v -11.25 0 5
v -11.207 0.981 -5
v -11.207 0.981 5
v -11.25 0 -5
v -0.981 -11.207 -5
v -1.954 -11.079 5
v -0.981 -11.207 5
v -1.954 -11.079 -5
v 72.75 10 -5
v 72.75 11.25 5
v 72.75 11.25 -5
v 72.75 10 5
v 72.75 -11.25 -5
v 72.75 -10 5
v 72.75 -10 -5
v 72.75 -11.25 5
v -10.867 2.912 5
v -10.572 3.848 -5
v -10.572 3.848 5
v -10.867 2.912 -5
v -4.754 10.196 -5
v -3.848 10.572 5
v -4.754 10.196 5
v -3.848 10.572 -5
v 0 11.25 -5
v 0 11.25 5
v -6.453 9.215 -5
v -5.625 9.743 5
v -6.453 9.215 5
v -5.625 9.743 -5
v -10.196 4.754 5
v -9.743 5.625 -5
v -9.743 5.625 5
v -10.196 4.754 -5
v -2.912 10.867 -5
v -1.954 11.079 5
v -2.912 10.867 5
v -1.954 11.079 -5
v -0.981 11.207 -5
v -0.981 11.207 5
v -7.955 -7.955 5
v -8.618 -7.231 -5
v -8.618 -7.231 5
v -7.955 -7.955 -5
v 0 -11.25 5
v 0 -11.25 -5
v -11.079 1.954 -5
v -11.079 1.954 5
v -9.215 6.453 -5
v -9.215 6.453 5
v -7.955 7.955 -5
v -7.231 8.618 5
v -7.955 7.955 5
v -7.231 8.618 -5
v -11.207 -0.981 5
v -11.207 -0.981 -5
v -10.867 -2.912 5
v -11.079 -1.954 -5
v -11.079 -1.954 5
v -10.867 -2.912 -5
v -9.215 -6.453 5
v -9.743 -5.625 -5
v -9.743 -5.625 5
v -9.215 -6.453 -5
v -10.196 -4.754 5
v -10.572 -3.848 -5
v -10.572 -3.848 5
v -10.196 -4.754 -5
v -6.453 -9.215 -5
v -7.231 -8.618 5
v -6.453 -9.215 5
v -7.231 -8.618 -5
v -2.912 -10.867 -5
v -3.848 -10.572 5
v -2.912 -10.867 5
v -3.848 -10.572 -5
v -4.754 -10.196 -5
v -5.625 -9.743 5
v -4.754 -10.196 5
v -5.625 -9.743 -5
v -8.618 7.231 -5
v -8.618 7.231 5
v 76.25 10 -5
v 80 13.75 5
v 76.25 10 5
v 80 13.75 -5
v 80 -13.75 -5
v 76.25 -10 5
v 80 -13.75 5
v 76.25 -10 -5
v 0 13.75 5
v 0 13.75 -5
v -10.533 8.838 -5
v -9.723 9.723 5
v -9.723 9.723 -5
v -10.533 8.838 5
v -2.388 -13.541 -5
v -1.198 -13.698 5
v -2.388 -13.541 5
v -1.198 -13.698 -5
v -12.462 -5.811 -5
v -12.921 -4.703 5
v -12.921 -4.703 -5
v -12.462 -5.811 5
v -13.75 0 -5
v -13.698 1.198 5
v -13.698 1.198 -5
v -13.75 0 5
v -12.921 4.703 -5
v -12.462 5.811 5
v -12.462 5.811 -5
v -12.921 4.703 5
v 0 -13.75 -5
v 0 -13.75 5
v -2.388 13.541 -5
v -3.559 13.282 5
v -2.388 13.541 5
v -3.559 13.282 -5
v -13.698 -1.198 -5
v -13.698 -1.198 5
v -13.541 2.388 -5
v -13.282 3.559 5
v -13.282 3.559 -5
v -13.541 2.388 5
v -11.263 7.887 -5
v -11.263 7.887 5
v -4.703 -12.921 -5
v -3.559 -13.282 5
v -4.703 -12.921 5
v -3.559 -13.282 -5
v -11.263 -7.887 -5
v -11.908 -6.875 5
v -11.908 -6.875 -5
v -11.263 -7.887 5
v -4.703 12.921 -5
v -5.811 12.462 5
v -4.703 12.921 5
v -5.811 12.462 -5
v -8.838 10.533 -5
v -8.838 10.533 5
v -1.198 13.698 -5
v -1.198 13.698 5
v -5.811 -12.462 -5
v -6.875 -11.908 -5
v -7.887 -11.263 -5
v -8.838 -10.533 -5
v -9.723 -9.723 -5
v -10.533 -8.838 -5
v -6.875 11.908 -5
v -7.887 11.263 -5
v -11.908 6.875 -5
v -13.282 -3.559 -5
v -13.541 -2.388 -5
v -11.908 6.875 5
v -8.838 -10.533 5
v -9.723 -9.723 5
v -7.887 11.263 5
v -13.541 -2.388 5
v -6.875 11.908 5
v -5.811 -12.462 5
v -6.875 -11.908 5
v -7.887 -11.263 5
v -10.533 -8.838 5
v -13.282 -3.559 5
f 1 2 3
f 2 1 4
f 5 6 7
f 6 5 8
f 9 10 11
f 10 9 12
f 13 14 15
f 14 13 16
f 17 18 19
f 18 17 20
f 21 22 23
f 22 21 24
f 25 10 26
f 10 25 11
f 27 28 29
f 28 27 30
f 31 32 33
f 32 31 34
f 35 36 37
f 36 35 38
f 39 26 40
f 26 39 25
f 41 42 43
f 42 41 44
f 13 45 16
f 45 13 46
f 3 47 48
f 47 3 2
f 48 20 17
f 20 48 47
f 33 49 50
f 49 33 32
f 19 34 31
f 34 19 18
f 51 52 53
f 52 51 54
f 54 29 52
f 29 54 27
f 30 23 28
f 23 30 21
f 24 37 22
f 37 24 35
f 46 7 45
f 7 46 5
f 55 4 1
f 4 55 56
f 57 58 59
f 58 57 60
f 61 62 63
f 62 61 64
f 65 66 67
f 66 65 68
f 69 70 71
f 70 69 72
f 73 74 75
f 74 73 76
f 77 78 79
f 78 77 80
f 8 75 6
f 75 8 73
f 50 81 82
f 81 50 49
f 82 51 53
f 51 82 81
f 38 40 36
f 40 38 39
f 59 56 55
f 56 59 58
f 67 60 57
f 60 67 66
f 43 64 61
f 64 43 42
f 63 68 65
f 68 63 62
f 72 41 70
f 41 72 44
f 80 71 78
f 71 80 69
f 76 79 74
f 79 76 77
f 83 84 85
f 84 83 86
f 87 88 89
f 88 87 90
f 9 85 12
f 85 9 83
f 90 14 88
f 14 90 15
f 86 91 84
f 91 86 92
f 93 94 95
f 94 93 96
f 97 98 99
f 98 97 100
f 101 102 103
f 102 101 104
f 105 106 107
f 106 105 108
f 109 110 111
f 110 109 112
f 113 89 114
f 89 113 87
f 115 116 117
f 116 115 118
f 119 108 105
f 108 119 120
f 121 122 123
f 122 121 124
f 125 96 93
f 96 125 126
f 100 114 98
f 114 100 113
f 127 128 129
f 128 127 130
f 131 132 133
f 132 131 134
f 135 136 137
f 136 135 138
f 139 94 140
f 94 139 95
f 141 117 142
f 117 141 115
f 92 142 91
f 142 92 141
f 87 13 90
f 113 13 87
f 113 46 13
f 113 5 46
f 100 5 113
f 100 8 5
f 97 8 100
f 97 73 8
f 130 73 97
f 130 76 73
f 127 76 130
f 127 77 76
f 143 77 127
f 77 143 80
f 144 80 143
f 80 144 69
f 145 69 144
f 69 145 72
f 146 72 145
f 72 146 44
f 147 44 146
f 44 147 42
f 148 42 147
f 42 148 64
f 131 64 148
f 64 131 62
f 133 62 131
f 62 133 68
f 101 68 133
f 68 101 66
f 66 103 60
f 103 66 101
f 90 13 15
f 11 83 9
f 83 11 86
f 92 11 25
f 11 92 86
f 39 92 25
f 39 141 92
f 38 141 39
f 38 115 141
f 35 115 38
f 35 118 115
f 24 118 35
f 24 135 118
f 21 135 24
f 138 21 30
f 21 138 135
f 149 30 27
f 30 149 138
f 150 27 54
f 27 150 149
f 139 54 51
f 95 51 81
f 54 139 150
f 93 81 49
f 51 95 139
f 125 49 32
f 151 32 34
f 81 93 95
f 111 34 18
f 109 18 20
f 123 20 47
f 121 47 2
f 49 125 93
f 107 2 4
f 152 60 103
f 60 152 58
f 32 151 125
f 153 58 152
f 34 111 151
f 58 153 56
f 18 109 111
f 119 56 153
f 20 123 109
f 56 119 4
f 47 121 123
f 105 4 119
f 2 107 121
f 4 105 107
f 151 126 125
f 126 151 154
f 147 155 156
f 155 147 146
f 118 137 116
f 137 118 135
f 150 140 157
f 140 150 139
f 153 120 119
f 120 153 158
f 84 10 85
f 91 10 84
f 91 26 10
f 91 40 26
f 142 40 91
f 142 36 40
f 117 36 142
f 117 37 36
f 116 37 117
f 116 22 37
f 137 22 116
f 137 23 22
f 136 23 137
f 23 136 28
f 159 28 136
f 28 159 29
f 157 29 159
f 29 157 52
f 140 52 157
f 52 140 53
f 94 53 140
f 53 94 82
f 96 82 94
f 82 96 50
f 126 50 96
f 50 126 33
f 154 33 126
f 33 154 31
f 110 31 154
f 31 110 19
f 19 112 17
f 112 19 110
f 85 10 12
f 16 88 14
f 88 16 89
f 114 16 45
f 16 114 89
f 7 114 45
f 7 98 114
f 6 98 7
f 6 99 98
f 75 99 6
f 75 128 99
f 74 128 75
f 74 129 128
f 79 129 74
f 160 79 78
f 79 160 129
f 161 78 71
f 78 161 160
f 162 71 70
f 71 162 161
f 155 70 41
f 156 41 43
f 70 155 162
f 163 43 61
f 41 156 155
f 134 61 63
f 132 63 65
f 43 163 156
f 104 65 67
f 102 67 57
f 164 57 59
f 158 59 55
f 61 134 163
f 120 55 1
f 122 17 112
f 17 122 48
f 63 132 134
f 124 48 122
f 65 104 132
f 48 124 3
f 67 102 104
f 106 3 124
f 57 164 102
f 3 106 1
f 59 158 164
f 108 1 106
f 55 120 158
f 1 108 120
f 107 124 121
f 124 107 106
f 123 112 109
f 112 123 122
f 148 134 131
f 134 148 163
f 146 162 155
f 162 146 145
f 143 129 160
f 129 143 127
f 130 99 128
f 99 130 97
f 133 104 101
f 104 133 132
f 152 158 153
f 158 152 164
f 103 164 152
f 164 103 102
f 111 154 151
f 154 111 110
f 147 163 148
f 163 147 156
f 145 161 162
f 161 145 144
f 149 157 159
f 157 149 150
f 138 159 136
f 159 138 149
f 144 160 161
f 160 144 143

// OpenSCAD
$fa=5; $fs=0.1;

int_dim=22.5;
wall=2.5;
ext_dim=int_dim + 2*wall;
height=10;
length=80;
tooth=(int_dim-20)/2;
tooth_add=3;

difference(){
 
 hull(){
    cylinder(h=height, r=ext_dim/2, center=true);
    translate([length-0.5, 0, 0]) cube([1, ext_dim, height], center=true);
 }//hull   
 
 union(){
     hull(){
         cylinder(h=height+0.01, r=int_dim/2, center=true);
         translate([length-(wall+tooth)-1-tooth_add, 0,0]) cube([1, int_dim, height+0.01], center=true);
     }//hull
     
     translate([length, 0, 0]) rotate([0,0,45]) cube([ext_dim/sqrt(2),ext_dim/sqrt(2),height+0.01], center=true); // зубы
     translate([length, 0, 0]) cube([50, int_dim-2*tooth, height+0.01], center=true); // усиление зубов
     
 }//union  
}//diff
